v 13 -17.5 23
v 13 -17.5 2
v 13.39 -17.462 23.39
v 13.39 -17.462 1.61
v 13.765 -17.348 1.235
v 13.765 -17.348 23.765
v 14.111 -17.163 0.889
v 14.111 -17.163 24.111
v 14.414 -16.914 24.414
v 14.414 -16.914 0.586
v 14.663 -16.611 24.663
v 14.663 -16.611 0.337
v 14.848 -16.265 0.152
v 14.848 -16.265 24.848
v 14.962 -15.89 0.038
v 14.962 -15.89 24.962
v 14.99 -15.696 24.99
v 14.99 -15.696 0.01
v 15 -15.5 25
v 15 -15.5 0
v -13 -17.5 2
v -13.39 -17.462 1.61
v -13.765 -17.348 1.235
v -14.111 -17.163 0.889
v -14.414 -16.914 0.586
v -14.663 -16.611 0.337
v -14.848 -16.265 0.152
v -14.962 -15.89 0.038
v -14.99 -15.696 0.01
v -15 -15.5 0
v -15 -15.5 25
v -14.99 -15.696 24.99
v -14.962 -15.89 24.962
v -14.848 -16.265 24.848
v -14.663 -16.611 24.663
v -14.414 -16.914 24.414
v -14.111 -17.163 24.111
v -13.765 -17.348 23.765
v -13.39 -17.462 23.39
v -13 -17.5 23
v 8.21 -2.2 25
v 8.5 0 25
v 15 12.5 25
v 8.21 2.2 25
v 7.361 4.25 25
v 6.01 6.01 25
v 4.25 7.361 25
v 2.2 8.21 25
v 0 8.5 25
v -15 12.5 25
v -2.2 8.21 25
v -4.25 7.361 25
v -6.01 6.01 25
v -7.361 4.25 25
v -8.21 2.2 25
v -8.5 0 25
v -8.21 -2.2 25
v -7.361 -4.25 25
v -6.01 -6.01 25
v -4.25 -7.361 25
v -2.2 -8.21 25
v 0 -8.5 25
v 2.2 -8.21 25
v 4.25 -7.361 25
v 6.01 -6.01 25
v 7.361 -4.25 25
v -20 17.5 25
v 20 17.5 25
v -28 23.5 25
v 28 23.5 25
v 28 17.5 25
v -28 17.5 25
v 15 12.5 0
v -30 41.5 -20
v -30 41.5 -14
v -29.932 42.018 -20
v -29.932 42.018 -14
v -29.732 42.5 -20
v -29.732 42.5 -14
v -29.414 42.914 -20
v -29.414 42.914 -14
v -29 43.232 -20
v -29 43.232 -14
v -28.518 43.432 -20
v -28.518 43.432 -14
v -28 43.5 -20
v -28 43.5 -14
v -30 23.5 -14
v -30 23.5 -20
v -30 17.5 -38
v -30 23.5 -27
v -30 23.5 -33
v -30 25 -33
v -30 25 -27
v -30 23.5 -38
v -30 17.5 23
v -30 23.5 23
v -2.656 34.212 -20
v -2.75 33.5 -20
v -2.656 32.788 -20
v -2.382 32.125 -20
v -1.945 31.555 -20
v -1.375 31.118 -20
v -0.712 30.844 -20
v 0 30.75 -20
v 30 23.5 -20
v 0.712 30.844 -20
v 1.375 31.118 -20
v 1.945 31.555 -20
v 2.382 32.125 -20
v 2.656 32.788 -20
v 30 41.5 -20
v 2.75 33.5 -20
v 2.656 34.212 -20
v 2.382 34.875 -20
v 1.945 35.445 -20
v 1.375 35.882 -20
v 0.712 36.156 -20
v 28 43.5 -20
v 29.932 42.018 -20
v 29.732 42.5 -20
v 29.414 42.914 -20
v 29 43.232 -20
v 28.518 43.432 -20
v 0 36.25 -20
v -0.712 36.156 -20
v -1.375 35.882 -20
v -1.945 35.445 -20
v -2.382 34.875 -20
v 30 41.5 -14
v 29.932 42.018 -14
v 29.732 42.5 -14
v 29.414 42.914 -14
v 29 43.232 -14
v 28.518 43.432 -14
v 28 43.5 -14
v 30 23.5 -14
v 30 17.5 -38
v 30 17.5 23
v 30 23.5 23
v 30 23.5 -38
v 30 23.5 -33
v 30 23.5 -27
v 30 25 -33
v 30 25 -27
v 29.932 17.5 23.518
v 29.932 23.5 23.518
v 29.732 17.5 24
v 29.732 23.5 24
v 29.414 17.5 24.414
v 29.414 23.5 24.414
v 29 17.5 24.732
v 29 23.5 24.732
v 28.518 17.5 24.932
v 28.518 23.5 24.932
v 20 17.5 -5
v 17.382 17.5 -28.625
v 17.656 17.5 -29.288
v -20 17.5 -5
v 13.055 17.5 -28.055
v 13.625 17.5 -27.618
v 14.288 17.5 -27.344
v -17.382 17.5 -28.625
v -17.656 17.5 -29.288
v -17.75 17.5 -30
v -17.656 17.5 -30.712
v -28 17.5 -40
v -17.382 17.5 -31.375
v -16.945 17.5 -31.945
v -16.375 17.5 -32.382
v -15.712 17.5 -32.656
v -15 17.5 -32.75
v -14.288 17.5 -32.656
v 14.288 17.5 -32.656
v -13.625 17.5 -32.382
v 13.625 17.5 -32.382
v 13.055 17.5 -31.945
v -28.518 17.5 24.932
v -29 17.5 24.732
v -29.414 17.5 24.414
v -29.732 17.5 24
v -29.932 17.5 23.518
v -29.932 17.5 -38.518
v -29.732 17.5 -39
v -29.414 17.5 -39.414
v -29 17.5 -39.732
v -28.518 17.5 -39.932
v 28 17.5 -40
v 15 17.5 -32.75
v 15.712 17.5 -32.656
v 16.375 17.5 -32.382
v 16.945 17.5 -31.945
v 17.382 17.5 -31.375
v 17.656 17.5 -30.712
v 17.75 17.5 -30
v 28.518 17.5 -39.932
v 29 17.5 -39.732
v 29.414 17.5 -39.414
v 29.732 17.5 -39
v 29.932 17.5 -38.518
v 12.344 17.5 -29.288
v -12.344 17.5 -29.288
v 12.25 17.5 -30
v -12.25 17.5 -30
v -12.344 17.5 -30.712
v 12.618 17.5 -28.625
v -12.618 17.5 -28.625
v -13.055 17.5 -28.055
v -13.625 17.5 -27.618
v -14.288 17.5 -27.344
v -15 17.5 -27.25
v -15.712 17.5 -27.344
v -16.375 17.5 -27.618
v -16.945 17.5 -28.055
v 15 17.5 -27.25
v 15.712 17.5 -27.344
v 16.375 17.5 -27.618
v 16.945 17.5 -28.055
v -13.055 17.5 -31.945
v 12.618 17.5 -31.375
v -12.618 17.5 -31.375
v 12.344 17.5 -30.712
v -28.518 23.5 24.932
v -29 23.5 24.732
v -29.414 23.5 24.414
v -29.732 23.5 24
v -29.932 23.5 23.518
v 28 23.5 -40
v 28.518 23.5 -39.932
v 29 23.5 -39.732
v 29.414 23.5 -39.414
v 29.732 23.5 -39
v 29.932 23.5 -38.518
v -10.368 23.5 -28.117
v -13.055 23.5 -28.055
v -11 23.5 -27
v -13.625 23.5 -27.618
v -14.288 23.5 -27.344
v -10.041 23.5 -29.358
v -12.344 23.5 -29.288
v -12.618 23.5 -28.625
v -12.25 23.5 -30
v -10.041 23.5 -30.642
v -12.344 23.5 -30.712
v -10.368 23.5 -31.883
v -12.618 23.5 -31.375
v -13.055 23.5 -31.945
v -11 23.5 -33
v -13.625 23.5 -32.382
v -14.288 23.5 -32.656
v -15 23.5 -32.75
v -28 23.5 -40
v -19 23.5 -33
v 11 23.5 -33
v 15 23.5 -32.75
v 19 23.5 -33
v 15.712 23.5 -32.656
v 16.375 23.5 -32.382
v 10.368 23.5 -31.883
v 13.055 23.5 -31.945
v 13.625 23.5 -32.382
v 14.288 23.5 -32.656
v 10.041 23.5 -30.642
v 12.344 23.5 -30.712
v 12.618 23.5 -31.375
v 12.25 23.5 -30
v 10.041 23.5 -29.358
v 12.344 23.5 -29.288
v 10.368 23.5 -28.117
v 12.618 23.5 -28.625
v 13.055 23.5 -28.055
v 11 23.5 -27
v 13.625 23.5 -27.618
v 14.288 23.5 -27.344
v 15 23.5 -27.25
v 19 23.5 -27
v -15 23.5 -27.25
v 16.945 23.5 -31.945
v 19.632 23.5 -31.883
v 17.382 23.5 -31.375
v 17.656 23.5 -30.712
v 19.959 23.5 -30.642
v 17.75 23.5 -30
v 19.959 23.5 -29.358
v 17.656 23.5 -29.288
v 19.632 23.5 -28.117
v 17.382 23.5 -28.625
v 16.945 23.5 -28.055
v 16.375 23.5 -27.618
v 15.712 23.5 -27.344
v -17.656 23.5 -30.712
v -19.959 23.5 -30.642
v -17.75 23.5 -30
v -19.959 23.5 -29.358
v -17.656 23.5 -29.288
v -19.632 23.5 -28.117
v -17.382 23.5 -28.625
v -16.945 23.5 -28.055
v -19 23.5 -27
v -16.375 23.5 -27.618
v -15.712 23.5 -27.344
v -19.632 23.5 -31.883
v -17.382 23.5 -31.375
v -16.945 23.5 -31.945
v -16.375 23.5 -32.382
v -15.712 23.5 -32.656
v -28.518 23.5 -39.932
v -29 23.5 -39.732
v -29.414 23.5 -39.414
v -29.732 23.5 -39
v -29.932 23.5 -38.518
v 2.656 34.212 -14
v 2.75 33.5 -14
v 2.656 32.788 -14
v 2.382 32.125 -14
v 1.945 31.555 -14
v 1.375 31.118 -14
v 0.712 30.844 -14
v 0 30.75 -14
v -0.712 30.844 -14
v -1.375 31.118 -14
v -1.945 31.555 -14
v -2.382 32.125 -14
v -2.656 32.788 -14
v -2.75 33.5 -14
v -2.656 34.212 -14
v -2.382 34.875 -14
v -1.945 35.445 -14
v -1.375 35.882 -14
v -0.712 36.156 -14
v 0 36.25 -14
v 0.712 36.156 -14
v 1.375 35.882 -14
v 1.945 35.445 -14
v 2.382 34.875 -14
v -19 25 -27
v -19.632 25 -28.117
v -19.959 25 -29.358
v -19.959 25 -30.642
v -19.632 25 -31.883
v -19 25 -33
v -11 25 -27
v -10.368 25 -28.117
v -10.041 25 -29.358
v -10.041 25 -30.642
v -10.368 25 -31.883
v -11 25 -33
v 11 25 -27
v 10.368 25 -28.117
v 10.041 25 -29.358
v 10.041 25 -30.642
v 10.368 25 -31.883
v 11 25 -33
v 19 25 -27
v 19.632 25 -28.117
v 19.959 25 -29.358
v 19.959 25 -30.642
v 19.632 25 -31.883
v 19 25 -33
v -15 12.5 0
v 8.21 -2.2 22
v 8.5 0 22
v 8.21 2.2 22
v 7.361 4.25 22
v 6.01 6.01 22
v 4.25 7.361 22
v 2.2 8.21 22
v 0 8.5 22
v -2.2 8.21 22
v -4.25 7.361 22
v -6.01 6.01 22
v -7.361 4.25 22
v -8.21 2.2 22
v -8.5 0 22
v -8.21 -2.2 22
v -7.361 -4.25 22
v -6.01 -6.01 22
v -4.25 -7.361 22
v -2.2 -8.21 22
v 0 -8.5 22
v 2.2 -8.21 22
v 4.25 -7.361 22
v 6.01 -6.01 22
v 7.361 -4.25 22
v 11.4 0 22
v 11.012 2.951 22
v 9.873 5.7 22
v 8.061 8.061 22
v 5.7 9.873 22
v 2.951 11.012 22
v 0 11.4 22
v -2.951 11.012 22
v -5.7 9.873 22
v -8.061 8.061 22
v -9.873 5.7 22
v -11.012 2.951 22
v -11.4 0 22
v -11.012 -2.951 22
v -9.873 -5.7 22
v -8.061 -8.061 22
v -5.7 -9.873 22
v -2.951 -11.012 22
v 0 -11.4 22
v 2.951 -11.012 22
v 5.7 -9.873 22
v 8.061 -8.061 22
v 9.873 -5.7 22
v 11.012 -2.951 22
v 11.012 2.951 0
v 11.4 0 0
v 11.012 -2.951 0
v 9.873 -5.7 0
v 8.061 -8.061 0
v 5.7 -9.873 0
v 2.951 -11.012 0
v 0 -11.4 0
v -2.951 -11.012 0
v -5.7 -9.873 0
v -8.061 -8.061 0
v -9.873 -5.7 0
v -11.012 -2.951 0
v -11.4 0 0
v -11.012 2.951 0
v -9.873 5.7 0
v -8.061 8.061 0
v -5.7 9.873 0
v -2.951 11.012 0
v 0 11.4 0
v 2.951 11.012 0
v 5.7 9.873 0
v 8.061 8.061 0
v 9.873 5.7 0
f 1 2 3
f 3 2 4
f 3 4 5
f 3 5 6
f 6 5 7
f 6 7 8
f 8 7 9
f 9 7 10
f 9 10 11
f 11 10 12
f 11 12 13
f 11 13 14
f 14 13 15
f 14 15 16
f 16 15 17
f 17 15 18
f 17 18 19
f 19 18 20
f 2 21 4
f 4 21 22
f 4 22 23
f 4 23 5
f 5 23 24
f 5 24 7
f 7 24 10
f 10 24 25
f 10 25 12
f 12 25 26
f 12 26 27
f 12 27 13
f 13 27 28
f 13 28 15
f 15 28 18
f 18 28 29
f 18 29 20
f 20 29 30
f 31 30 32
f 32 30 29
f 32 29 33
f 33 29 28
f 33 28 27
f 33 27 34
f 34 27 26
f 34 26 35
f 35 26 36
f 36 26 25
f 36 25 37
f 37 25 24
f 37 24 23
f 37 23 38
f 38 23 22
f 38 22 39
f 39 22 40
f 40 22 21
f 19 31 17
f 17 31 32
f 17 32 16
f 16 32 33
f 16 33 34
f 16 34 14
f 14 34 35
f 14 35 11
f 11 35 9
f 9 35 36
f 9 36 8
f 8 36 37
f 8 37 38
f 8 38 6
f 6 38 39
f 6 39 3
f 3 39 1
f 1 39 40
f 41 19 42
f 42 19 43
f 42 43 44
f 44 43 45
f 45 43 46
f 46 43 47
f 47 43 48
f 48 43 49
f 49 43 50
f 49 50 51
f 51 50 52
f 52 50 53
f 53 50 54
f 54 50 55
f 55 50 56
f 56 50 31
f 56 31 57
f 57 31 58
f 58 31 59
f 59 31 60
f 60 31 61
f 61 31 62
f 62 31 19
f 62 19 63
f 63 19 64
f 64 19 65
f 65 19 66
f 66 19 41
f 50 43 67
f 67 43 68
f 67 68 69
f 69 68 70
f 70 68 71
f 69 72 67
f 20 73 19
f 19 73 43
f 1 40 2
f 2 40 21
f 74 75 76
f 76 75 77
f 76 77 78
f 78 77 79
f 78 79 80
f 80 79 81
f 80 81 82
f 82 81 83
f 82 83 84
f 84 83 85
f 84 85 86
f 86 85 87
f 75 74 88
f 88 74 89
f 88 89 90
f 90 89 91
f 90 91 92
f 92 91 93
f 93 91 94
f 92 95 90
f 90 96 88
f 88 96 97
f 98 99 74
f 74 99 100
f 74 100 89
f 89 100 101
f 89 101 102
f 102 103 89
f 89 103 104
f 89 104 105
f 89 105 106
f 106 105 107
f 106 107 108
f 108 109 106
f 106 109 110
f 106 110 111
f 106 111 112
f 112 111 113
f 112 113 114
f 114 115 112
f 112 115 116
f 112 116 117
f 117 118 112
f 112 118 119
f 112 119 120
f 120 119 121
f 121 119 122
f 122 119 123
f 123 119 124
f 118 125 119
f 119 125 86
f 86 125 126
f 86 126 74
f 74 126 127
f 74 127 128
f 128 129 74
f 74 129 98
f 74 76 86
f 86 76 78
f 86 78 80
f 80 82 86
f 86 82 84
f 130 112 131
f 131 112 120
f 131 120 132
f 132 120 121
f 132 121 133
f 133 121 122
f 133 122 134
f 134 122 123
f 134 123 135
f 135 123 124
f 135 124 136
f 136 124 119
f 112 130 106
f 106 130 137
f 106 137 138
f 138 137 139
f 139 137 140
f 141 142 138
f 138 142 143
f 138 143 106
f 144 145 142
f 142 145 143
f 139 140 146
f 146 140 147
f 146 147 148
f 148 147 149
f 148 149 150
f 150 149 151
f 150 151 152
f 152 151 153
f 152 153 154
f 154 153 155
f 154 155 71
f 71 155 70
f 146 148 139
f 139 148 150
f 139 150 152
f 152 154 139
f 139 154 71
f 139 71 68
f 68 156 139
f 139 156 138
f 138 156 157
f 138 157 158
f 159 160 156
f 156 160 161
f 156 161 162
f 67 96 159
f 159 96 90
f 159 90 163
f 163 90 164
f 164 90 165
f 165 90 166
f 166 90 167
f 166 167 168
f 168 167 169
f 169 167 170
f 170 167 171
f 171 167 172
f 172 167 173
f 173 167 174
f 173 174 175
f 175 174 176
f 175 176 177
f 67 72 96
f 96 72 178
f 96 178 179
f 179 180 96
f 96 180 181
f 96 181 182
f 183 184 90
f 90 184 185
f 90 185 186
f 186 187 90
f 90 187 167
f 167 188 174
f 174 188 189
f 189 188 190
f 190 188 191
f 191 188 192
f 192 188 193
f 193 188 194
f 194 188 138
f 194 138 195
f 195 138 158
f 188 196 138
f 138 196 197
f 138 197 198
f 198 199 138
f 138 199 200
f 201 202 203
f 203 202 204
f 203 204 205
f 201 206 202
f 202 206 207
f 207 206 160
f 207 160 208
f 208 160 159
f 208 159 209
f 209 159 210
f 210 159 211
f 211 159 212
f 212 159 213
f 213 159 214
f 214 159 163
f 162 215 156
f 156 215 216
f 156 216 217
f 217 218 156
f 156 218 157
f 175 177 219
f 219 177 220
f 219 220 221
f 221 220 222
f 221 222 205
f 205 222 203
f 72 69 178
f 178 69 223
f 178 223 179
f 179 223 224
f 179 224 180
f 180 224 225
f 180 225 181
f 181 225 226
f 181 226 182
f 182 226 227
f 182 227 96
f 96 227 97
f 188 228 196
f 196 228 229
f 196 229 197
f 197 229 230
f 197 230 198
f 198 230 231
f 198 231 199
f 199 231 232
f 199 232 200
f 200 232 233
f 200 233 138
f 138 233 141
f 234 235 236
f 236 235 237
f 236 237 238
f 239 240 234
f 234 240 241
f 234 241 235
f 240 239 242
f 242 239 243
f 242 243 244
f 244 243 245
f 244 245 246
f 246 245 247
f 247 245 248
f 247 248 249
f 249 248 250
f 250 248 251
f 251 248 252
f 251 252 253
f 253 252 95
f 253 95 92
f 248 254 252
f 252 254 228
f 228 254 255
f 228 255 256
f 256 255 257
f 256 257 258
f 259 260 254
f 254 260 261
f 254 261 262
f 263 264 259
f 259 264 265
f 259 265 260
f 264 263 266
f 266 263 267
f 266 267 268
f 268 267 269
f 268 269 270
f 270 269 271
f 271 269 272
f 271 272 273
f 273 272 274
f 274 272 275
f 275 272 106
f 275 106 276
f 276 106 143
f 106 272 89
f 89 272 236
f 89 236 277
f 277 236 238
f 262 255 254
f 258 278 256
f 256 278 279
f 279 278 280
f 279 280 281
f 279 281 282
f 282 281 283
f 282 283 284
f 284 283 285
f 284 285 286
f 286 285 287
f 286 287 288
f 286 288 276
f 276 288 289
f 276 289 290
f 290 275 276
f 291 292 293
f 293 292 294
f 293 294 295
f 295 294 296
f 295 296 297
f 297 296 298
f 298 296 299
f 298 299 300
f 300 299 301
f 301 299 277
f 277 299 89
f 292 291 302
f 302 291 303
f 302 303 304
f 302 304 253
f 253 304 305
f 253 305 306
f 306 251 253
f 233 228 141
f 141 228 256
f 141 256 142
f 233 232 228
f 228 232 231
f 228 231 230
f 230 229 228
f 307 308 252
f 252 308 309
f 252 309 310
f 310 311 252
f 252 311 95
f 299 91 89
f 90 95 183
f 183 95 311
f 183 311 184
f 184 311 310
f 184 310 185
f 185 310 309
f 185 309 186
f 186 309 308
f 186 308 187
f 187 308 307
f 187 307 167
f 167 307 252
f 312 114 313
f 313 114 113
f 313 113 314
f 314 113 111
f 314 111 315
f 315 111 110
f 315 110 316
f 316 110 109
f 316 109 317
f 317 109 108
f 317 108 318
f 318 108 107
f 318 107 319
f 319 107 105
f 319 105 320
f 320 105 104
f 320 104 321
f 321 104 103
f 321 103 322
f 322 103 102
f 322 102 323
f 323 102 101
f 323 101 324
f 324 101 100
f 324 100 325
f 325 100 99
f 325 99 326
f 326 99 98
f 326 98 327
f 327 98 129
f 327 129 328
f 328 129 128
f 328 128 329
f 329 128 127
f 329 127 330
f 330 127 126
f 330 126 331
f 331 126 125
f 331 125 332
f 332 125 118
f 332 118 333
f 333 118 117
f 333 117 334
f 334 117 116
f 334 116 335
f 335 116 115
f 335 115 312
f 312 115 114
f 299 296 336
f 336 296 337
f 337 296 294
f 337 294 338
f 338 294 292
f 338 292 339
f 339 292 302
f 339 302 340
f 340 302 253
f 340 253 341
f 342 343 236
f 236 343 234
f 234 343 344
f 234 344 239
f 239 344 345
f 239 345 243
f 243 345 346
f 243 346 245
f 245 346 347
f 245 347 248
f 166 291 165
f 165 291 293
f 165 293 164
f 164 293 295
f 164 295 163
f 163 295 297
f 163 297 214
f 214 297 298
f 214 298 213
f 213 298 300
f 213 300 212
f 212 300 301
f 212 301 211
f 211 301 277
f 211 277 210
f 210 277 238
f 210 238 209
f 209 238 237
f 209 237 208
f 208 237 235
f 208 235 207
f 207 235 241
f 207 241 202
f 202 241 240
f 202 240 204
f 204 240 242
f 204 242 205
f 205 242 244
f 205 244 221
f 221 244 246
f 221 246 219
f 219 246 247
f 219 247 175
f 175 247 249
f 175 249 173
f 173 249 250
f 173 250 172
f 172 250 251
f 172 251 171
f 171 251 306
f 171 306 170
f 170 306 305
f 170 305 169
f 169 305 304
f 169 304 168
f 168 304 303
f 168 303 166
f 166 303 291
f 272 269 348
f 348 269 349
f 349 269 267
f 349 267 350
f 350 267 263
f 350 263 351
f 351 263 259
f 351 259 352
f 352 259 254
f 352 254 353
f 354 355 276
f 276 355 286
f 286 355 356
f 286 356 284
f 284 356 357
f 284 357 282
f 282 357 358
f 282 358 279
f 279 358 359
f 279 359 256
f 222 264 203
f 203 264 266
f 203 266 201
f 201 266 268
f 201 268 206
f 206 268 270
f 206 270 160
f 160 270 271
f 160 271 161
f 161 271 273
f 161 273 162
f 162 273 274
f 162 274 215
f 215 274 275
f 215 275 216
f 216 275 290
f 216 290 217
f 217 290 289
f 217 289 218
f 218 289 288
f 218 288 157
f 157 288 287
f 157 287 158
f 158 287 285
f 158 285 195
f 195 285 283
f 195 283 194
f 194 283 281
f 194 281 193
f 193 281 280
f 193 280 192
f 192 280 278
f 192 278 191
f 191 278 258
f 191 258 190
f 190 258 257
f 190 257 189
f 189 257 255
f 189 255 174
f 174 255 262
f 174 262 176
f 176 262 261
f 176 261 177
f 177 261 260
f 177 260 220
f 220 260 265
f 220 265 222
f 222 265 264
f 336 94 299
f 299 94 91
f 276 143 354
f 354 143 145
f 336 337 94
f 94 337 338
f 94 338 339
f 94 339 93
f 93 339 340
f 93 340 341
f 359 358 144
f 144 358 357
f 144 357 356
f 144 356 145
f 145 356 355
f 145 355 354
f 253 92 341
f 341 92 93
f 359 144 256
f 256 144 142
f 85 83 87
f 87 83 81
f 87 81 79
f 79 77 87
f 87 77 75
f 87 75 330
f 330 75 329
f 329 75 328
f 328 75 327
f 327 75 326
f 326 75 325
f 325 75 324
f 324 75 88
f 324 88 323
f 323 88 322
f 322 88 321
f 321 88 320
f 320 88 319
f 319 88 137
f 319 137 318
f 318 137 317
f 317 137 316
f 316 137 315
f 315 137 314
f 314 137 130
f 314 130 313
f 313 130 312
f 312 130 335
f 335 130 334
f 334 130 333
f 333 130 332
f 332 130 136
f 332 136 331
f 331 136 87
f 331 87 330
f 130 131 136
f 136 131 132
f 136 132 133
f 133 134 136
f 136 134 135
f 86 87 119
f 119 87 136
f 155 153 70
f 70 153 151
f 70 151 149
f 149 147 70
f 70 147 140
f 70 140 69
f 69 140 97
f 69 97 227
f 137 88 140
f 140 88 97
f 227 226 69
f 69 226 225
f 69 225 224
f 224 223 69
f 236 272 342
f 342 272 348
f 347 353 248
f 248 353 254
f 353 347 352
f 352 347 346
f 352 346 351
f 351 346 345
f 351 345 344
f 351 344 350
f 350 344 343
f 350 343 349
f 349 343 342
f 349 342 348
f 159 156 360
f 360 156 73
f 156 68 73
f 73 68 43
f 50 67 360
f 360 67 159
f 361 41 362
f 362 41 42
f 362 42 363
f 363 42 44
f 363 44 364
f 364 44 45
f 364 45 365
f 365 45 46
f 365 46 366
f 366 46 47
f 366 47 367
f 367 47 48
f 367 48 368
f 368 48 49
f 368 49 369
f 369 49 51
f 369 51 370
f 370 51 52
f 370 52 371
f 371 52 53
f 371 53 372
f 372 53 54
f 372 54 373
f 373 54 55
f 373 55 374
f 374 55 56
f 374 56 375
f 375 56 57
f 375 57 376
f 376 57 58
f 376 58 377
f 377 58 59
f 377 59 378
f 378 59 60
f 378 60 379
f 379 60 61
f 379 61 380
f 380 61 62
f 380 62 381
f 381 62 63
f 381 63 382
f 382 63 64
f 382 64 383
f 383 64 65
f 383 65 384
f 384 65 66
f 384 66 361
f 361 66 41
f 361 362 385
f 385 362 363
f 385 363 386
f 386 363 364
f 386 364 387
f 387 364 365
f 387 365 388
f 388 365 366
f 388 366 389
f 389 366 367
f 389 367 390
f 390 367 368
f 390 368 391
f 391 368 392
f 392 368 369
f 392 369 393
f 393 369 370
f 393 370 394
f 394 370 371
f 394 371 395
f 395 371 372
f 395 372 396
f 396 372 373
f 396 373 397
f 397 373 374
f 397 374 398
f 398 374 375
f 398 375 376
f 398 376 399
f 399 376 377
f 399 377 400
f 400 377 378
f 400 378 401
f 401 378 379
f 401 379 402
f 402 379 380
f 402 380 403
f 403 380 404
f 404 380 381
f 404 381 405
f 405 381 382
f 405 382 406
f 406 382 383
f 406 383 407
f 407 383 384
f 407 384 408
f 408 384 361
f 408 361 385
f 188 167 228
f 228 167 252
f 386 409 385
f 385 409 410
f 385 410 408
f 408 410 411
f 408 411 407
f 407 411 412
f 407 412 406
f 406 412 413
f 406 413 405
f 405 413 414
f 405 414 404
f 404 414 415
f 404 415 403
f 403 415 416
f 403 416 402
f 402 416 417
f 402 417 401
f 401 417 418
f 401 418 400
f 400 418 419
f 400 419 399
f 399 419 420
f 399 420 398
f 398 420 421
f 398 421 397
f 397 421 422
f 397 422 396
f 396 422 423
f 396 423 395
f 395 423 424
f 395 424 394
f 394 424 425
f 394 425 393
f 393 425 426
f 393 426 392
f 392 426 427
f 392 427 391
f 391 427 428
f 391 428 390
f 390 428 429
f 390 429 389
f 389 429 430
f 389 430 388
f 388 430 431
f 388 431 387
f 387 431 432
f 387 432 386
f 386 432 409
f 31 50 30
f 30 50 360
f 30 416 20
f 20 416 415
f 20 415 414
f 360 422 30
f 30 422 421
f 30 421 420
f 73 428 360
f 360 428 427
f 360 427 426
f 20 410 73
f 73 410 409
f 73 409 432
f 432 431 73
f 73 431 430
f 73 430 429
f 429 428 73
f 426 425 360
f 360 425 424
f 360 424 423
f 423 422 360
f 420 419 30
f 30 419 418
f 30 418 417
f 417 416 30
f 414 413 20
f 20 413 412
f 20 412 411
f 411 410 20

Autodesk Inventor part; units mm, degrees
ref_plane "YZ Plane" through (0, 0, 0) normal (1, 0, 0) x (0, 1, 0)
ref_plane "XZ Plane" through (0, 0, 0) normal (0, 1, 0) x (-1, 0, 0)
ref_plane "XY Plane" through (0, 0, 0) normal (0, 0, 1) x (1, 0, 0)
sketch "Sketch1" plane through (0, 0, 0) normal (0, 0, 1) x (1, 0, 0)
  circle A0 centre (0, 0) radius 11.4
  line L0 (-15, 17.5) -> (15, 17.5)
  line L1 (15, 17.5) -> (15, -17.5)
  line L2 (15, -17.5) -> (-15, -17.5)
  line L3 (-15, -17.5) -> (-15, 17.5)
  line L4 (-15, 17.5) -> (15, -17.5) construction
  line L5 (15, 17.5) -> (-15, -17.5) construction
  dimension "d0" = 22.8
  dimension "d1" = 30
  dimension "d2" = 35
extrude "Extrusion1" add sketch "Sketch1" along normal blind 25
sketch "Sketch3" plane through (-15, 17.5, 0) normal (0, 1, 0) x (1, 0, 0)
  line L0 (30, 0) -> (0, 0) projected
  line L1 (0, 0) -> (30, -25)
  line L2 (45, 40) -> (-15, 40)
  line L3 (-15, 40) -> (-15, -25)
  line L4 (-15, -25) -> (45, -25)
  line L5 (45, -25) -> (45, 40)
  line L6 (0, 0) -> (30, 0) projected
  line L7 (30, 0) -> (45, 0)
  line L8 (30, -25) -> (0, -25) projected
  point P0 (15, 0)
  point P1 (15, -12.5)
  dimension "d8" = 60
  dimension "d9" = 65
  dimension "d27" = 0
extrude "Extrusion3" add sketch "Sketch3" along normal blind 6
sketch "Sketch4" plane through (-15, 23.5, 0) normal (0, 1, 0) x (1, 0, 0)
  line L0 (-15, 33) -> (45, 33)
  line L1 (-15, 27) -> (45, 27)
  line L2 (45, 33) -> (45, 27)
  line L3 (-15, 27) -> (-15, 33)
  line L4 (45, 40) -> (-15, 40) projected
  dimension "d20" = 7
  dimension "d21" = 13
sketch "Sketch5" plane through (0, 0, 25) normal (0, 0, 1) x (1, 0, 0)
  circle A0 centre (0, 0) radius 11.4
  circle A1 centre (0, 0) radius 8.5
  dimension "d24" = 17
extrude "Extrusion5" add sketch "Sketch5" against normal blind 3
chamfer "Chamfer1" distance 5 angle 45 3 edges at (15, 17.5, 12.5) (-15, 17.5, 12.5) (0, 17.5, 0)
extrude "Extrusion6" add sketch "Sketch4" along normal blind 1.5
sketch "Sketch8" plane through (-15, 23.5, 0) normal (0, 1, 0) x (1, 0, 0)
  line L0 (45, 40) -> (-15, 40) projected
  line L1 (-15, 20) -> (45, 20)
  line L2 (45, 20) -> (45, 14)
  line L3 (45, 14) -> (-15, 14)
  line L4 (-15, 14) -> (-15, 20)
  point P0 (43, 40)
  point P1 (-13, 40)
  point P2 (15, 11.0426)
  dimension "d47" = 6
  dimension "d50" = 20
extrude "Extrusion7" add sketch "Sketch8" along normal blind 20
sketch "Sketch10" plane through (-15, 25, 0) normal (0, 1, 0) x (1, 0, 0)
  line L0 (45, 33) -> (-15, 33) projected
  line L1 (15, 33) -> (15, 27)
  line L2 (45, 27) -> (-15, 27) projected
  line L3 (0, 33) -> (0, 27)
  line L4 (30, 33) -> (30, 27)
  point P0 (15, 0)
  point P1 (0, 30)
  point P2 (30, 30)
  dimension "d51" = 15
  dimension "d52" = 15
hole "Hole2" at (-15, 25, -30) at (15, 25, -30) direction (0, -1, 0) diameter 5.5 end through all counterbore diameter 10 counterbore depth 1.5
sketch "Sketch11" plane through (30, 23.5, -20) normal (0, 0, -1) x (-1, 0, 0)
  line L0 (60, 0) -> (60, 20) projected
  line L1 (60, 10) -> (0, 10)
  line L2 (0, 0) -> (0, 20) projected
  line L3 (60, 20) -> (0, 20) projected
  line L4 (30, 20) -> (30, 10)
  point P0 (30, -23.5)
hole "Hole3" at (0, 33.5, -20) direction (0, 0, 1) diameter 5.5 end through all
fillet "Fillet2" radius 2 10 edges at (-30, 20.5, -40) (30, 20.5, -40) (-30, 20.5, 25) (30, 20.5, 25) (30, 43.5, -17) (-30, 43.5, -17) (-15, -17.5, 12.5) (15, -17.5, 12.5) (0, -17.5, 25) (0, -17.5, 0)
properties part number "Estrutura - Suporte Rolamento Z Motor"
